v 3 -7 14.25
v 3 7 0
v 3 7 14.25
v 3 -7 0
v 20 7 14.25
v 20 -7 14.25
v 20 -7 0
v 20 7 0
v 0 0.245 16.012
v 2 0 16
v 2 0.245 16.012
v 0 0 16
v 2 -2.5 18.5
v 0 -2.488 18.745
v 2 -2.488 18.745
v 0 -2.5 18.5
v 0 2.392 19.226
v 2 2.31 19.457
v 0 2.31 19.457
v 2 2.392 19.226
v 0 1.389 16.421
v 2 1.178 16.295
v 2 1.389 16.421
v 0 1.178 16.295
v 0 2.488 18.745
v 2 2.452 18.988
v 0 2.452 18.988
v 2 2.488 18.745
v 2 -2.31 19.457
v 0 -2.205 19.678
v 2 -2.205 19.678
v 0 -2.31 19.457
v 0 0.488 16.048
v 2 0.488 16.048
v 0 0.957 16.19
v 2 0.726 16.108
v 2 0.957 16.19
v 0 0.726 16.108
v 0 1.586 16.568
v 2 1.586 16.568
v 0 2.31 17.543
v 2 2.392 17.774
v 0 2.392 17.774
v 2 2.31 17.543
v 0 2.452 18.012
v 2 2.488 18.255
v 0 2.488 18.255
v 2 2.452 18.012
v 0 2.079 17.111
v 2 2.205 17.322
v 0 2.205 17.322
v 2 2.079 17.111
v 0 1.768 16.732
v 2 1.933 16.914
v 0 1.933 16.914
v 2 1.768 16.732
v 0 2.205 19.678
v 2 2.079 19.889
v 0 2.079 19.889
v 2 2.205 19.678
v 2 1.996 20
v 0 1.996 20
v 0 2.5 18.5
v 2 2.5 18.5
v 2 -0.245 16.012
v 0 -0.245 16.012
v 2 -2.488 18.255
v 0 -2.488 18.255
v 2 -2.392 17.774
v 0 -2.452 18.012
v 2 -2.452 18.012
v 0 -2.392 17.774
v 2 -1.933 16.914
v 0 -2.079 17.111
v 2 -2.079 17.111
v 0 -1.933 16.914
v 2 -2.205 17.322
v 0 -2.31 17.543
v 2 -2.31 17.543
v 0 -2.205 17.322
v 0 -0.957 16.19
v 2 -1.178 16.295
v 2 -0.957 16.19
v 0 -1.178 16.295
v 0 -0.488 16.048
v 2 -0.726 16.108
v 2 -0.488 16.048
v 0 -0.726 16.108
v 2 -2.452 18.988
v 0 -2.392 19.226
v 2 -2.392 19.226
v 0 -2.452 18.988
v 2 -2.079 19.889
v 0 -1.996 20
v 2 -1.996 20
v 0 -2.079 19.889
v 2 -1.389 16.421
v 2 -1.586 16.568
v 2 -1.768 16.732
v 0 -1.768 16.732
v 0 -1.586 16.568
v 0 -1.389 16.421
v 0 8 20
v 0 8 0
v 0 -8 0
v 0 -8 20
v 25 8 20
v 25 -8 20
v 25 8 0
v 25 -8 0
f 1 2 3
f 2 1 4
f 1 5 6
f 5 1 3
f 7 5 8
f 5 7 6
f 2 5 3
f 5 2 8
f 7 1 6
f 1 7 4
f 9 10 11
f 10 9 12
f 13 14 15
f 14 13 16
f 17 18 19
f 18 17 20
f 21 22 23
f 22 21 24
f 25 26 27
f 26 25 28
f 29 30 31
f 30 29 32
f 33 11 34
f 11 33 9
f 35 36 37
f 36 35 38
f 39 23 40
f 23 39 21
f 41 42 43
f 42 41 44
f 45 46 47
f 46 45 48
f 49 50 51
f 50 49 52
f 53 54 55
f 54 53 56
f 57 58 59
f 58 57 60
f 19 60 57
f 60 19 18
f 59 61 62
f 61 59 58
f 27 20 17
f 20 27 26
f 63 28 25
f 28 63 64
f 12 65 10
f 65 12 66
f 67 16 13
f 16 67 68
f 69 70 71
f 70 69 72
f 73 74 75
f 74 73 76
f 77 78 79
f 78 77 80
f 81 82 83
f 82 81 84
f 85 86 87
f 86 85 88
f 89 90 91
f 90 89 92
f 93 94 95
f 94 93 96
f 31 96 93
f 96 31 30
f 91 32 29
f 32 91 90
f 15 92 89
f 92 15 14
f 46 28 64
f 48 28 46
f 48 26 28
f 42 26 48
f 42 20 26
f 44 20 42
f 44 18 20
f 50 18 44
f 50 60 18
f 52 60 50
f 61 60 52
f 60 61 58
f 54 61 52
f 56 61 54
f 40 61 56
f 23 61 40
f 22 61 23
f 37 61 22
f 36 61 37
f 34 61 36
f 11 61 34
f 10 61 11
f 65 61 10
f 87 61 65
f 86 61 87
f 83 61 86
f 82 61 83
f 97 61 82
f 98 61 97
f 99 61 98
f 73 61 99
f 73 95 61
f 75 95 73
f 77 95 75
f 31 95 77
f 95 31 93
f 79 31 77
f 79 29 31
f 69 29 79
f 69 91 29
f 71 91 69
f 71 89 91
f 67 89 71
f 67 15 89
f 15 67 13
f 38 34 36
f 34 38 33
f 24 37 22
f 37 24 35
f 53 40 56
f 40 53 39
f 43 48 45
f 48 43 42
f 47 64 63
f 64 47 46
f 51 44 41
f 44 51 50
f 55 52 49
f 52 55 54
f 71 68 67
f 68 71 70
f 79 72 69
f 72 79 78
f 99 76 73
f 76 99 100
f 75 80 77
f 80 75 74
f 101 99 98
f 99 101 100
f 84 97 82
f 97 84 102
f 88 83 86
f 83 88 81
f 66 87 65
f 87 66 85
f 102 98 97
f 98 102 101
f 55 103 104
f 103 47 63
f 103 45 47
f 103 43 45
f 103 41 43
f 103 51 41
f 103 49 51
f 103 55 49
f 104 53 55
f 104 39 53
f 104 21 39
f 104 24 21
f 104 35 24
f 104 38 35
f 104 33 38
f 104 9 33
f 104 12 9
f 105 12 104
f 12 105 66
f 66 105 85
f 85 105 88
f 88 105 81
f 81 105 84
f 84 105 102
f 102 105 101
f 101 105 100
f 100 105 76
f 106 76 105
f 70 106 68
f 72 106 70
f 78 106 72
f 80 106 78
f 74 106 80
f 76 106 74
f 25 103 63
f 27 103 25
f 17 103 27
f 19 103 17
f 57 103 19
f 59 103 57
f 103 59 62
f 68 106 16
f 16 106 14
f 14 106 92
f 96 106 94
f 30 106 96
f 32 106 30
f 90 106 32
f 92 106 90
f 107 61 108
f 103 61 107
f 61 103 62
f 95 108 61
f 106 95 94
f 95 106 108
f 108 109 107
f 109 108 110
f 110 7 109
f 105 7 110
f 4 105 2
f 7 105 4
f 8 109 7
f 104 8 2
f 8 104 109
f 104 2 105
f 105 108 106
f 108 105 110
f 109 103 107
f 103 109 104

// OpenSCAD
// ============================================================
// B3 - 远端指段 / 指尖 (Distal Phalanx)
// 单位: 毫米 (mm)
//
// 坐标系 (以 B3 自身左端为原点):
//   +X 朝向指尖
//   Y  左右
//   Z  上下, Z=0 是底面
//
// 关键结构 (与 B1/B2 完全不同!):
//
//   ┌────────────────────────────┐ ← Z=20 (实心顶 = 6mm)
//   │           实心              │
//   ├────────────────────────────┤ ← Z=14 (内腔顶部)
//   │                            │
//   │          内腔               │
//   │        17 × 14 × 14         │
//   │                            │
//   ├────────────────────────────┤ ← Z=0  (底面)
//   └──┬──────────────────┬──────┘
//      X=0              X=25
//      ↑                  ↑
//   输入端 (有孔)     指尖端 (实心 5mm)
//
// 与 B1/B2 的区别:
//   - 尺寸更小 (25×16×20, 不是 30×16×25)
//   - 只有一个关节孔 (输入端), 输出端封闭为实心指尖
//   - 内腔不穿透 Z (顶部 6mm 实心)
//   - 内腔不到 X 末端 (指尖端 5mm 实心)
// ============================================================

/* === [全局渲染质量] === */
$fn = 64;

/* === [主壳尺寸] -- 比 B1/B2 小 === */
len_x   = 25;     // 长度 25 (B1/B2 是 30, 短 5mm)
wid_y   = 16;     // 宽度 16 (一致)
hgt_z   = 20;     // 高度 20 (B1/B2 是 25, 矮 5mm)

/* === [内腔] -- 复杂, 两边都封 === */
wall_x       = 3;          // 前后壁厚
wall_y       = 1;          // 左右壁厚
tip_solid_x  = 5;          // 指尖端实心长度 (X=20~25)
top_solid_z  = 6;          // 顶部实心高度 (Z=14~20)

/* === [关节孔] -- 只有输入端 === */
joint_r  = 2.5;   // ⌀5
joint_z  = 18.5;  // Z 位置 (比 B1/B2 低, 因为 B3 总高只有 20)

// ============================================================
// 模块
// ============================================================

module main_shell() {
    translate([len_x/2, 0, hgt_z/2])
        cube([len_x, wid_y, hgt_z], center = true);
}

module inner_cavity() {
    // 内腔范围:
    //   X: [wall_x, len_x - tip_solid_x] = [3, 20]   长度 17
    //   Y: [-wid_y/2 + wall_y, +wid_y/2 - wall_y]    宽度 14
    //   Z: [0, hgt_z - top_solid_z] = [0, 14]         高度 14
    cav_x_start = wall_x;
    cav_x_len   = len_x - wall_x - tip_solid_x;   // 17
    cav_y_len   = wid_y - 2*wall_y;                // 14
    cav_z_len   = hgt_z - top_solid_z;             // 14
    
    // 把中心放在内腔几何中心
    translate([
        cav_x_start + cav_x_len/2,  // X 中心 = 11.5
        0,
        cav_z_len/2                  // Z 中心 = 7
    ])
    cube([cav_x_len, cav_y_len, cav_z_len + 0.5], center = true);
    // +0.5 是保险, 确保切穿不留薄片
}

module input_joint_hole() {
    // 只有输入端有关节孔 (X=0 面)
    translate([0, 0, joint_z])
        rotate([0, 90, 0])
        cylinder(h = wall_x + 1, r = joint_r, center = true);
}

// ============================================================
// 组装
// ============================================================

difference() {
    main_shell();
    union() {
        inner_cavity();
        input_joint_hole();
    }
}

// ============================================================
// 调试输出
// ============================================================
echo(str("B3 外形: ", len_x, " x ", wid_y, " x ", hgt_z, " mm"));
echo(str("B3 内腔: 17 x 14 x 14 mm (X[3,20], Y[-7,7], Z[0,14])"));
echo(str("B3 实心区: 指尖端 ", tip_solid_x, "mm + 顶部 ", top_solid_z, "mm"));
echo(str("B3 关节孔: ⌀", joint_r*2, " at Z=", joint_z, " mm (仅输入端)"));

/* ============================================================
 * 设计笔记:
 *
 * 为什么 B3 要做"实心指尖"?
 *
 *   - 物理上: 手指最前端是要碰东西的, 实体才有力
 *   - 装配上: 关节轴只能装在输入端, 输出端不能有孔
 *   - 视觉上: 模拟真实手指形状 (有"指尖")
 *   - 触觉上: 实心顶部将来可以装压力传感器
 *
 * 为什么 B3 的内腔在 X/Y 方向都不到壁?
 *
 *   - Y 方向 1mm 壁: 防掰断
 *   - X 方向 5mm 指尖: 提供结构强度
 * ============================================================ */
